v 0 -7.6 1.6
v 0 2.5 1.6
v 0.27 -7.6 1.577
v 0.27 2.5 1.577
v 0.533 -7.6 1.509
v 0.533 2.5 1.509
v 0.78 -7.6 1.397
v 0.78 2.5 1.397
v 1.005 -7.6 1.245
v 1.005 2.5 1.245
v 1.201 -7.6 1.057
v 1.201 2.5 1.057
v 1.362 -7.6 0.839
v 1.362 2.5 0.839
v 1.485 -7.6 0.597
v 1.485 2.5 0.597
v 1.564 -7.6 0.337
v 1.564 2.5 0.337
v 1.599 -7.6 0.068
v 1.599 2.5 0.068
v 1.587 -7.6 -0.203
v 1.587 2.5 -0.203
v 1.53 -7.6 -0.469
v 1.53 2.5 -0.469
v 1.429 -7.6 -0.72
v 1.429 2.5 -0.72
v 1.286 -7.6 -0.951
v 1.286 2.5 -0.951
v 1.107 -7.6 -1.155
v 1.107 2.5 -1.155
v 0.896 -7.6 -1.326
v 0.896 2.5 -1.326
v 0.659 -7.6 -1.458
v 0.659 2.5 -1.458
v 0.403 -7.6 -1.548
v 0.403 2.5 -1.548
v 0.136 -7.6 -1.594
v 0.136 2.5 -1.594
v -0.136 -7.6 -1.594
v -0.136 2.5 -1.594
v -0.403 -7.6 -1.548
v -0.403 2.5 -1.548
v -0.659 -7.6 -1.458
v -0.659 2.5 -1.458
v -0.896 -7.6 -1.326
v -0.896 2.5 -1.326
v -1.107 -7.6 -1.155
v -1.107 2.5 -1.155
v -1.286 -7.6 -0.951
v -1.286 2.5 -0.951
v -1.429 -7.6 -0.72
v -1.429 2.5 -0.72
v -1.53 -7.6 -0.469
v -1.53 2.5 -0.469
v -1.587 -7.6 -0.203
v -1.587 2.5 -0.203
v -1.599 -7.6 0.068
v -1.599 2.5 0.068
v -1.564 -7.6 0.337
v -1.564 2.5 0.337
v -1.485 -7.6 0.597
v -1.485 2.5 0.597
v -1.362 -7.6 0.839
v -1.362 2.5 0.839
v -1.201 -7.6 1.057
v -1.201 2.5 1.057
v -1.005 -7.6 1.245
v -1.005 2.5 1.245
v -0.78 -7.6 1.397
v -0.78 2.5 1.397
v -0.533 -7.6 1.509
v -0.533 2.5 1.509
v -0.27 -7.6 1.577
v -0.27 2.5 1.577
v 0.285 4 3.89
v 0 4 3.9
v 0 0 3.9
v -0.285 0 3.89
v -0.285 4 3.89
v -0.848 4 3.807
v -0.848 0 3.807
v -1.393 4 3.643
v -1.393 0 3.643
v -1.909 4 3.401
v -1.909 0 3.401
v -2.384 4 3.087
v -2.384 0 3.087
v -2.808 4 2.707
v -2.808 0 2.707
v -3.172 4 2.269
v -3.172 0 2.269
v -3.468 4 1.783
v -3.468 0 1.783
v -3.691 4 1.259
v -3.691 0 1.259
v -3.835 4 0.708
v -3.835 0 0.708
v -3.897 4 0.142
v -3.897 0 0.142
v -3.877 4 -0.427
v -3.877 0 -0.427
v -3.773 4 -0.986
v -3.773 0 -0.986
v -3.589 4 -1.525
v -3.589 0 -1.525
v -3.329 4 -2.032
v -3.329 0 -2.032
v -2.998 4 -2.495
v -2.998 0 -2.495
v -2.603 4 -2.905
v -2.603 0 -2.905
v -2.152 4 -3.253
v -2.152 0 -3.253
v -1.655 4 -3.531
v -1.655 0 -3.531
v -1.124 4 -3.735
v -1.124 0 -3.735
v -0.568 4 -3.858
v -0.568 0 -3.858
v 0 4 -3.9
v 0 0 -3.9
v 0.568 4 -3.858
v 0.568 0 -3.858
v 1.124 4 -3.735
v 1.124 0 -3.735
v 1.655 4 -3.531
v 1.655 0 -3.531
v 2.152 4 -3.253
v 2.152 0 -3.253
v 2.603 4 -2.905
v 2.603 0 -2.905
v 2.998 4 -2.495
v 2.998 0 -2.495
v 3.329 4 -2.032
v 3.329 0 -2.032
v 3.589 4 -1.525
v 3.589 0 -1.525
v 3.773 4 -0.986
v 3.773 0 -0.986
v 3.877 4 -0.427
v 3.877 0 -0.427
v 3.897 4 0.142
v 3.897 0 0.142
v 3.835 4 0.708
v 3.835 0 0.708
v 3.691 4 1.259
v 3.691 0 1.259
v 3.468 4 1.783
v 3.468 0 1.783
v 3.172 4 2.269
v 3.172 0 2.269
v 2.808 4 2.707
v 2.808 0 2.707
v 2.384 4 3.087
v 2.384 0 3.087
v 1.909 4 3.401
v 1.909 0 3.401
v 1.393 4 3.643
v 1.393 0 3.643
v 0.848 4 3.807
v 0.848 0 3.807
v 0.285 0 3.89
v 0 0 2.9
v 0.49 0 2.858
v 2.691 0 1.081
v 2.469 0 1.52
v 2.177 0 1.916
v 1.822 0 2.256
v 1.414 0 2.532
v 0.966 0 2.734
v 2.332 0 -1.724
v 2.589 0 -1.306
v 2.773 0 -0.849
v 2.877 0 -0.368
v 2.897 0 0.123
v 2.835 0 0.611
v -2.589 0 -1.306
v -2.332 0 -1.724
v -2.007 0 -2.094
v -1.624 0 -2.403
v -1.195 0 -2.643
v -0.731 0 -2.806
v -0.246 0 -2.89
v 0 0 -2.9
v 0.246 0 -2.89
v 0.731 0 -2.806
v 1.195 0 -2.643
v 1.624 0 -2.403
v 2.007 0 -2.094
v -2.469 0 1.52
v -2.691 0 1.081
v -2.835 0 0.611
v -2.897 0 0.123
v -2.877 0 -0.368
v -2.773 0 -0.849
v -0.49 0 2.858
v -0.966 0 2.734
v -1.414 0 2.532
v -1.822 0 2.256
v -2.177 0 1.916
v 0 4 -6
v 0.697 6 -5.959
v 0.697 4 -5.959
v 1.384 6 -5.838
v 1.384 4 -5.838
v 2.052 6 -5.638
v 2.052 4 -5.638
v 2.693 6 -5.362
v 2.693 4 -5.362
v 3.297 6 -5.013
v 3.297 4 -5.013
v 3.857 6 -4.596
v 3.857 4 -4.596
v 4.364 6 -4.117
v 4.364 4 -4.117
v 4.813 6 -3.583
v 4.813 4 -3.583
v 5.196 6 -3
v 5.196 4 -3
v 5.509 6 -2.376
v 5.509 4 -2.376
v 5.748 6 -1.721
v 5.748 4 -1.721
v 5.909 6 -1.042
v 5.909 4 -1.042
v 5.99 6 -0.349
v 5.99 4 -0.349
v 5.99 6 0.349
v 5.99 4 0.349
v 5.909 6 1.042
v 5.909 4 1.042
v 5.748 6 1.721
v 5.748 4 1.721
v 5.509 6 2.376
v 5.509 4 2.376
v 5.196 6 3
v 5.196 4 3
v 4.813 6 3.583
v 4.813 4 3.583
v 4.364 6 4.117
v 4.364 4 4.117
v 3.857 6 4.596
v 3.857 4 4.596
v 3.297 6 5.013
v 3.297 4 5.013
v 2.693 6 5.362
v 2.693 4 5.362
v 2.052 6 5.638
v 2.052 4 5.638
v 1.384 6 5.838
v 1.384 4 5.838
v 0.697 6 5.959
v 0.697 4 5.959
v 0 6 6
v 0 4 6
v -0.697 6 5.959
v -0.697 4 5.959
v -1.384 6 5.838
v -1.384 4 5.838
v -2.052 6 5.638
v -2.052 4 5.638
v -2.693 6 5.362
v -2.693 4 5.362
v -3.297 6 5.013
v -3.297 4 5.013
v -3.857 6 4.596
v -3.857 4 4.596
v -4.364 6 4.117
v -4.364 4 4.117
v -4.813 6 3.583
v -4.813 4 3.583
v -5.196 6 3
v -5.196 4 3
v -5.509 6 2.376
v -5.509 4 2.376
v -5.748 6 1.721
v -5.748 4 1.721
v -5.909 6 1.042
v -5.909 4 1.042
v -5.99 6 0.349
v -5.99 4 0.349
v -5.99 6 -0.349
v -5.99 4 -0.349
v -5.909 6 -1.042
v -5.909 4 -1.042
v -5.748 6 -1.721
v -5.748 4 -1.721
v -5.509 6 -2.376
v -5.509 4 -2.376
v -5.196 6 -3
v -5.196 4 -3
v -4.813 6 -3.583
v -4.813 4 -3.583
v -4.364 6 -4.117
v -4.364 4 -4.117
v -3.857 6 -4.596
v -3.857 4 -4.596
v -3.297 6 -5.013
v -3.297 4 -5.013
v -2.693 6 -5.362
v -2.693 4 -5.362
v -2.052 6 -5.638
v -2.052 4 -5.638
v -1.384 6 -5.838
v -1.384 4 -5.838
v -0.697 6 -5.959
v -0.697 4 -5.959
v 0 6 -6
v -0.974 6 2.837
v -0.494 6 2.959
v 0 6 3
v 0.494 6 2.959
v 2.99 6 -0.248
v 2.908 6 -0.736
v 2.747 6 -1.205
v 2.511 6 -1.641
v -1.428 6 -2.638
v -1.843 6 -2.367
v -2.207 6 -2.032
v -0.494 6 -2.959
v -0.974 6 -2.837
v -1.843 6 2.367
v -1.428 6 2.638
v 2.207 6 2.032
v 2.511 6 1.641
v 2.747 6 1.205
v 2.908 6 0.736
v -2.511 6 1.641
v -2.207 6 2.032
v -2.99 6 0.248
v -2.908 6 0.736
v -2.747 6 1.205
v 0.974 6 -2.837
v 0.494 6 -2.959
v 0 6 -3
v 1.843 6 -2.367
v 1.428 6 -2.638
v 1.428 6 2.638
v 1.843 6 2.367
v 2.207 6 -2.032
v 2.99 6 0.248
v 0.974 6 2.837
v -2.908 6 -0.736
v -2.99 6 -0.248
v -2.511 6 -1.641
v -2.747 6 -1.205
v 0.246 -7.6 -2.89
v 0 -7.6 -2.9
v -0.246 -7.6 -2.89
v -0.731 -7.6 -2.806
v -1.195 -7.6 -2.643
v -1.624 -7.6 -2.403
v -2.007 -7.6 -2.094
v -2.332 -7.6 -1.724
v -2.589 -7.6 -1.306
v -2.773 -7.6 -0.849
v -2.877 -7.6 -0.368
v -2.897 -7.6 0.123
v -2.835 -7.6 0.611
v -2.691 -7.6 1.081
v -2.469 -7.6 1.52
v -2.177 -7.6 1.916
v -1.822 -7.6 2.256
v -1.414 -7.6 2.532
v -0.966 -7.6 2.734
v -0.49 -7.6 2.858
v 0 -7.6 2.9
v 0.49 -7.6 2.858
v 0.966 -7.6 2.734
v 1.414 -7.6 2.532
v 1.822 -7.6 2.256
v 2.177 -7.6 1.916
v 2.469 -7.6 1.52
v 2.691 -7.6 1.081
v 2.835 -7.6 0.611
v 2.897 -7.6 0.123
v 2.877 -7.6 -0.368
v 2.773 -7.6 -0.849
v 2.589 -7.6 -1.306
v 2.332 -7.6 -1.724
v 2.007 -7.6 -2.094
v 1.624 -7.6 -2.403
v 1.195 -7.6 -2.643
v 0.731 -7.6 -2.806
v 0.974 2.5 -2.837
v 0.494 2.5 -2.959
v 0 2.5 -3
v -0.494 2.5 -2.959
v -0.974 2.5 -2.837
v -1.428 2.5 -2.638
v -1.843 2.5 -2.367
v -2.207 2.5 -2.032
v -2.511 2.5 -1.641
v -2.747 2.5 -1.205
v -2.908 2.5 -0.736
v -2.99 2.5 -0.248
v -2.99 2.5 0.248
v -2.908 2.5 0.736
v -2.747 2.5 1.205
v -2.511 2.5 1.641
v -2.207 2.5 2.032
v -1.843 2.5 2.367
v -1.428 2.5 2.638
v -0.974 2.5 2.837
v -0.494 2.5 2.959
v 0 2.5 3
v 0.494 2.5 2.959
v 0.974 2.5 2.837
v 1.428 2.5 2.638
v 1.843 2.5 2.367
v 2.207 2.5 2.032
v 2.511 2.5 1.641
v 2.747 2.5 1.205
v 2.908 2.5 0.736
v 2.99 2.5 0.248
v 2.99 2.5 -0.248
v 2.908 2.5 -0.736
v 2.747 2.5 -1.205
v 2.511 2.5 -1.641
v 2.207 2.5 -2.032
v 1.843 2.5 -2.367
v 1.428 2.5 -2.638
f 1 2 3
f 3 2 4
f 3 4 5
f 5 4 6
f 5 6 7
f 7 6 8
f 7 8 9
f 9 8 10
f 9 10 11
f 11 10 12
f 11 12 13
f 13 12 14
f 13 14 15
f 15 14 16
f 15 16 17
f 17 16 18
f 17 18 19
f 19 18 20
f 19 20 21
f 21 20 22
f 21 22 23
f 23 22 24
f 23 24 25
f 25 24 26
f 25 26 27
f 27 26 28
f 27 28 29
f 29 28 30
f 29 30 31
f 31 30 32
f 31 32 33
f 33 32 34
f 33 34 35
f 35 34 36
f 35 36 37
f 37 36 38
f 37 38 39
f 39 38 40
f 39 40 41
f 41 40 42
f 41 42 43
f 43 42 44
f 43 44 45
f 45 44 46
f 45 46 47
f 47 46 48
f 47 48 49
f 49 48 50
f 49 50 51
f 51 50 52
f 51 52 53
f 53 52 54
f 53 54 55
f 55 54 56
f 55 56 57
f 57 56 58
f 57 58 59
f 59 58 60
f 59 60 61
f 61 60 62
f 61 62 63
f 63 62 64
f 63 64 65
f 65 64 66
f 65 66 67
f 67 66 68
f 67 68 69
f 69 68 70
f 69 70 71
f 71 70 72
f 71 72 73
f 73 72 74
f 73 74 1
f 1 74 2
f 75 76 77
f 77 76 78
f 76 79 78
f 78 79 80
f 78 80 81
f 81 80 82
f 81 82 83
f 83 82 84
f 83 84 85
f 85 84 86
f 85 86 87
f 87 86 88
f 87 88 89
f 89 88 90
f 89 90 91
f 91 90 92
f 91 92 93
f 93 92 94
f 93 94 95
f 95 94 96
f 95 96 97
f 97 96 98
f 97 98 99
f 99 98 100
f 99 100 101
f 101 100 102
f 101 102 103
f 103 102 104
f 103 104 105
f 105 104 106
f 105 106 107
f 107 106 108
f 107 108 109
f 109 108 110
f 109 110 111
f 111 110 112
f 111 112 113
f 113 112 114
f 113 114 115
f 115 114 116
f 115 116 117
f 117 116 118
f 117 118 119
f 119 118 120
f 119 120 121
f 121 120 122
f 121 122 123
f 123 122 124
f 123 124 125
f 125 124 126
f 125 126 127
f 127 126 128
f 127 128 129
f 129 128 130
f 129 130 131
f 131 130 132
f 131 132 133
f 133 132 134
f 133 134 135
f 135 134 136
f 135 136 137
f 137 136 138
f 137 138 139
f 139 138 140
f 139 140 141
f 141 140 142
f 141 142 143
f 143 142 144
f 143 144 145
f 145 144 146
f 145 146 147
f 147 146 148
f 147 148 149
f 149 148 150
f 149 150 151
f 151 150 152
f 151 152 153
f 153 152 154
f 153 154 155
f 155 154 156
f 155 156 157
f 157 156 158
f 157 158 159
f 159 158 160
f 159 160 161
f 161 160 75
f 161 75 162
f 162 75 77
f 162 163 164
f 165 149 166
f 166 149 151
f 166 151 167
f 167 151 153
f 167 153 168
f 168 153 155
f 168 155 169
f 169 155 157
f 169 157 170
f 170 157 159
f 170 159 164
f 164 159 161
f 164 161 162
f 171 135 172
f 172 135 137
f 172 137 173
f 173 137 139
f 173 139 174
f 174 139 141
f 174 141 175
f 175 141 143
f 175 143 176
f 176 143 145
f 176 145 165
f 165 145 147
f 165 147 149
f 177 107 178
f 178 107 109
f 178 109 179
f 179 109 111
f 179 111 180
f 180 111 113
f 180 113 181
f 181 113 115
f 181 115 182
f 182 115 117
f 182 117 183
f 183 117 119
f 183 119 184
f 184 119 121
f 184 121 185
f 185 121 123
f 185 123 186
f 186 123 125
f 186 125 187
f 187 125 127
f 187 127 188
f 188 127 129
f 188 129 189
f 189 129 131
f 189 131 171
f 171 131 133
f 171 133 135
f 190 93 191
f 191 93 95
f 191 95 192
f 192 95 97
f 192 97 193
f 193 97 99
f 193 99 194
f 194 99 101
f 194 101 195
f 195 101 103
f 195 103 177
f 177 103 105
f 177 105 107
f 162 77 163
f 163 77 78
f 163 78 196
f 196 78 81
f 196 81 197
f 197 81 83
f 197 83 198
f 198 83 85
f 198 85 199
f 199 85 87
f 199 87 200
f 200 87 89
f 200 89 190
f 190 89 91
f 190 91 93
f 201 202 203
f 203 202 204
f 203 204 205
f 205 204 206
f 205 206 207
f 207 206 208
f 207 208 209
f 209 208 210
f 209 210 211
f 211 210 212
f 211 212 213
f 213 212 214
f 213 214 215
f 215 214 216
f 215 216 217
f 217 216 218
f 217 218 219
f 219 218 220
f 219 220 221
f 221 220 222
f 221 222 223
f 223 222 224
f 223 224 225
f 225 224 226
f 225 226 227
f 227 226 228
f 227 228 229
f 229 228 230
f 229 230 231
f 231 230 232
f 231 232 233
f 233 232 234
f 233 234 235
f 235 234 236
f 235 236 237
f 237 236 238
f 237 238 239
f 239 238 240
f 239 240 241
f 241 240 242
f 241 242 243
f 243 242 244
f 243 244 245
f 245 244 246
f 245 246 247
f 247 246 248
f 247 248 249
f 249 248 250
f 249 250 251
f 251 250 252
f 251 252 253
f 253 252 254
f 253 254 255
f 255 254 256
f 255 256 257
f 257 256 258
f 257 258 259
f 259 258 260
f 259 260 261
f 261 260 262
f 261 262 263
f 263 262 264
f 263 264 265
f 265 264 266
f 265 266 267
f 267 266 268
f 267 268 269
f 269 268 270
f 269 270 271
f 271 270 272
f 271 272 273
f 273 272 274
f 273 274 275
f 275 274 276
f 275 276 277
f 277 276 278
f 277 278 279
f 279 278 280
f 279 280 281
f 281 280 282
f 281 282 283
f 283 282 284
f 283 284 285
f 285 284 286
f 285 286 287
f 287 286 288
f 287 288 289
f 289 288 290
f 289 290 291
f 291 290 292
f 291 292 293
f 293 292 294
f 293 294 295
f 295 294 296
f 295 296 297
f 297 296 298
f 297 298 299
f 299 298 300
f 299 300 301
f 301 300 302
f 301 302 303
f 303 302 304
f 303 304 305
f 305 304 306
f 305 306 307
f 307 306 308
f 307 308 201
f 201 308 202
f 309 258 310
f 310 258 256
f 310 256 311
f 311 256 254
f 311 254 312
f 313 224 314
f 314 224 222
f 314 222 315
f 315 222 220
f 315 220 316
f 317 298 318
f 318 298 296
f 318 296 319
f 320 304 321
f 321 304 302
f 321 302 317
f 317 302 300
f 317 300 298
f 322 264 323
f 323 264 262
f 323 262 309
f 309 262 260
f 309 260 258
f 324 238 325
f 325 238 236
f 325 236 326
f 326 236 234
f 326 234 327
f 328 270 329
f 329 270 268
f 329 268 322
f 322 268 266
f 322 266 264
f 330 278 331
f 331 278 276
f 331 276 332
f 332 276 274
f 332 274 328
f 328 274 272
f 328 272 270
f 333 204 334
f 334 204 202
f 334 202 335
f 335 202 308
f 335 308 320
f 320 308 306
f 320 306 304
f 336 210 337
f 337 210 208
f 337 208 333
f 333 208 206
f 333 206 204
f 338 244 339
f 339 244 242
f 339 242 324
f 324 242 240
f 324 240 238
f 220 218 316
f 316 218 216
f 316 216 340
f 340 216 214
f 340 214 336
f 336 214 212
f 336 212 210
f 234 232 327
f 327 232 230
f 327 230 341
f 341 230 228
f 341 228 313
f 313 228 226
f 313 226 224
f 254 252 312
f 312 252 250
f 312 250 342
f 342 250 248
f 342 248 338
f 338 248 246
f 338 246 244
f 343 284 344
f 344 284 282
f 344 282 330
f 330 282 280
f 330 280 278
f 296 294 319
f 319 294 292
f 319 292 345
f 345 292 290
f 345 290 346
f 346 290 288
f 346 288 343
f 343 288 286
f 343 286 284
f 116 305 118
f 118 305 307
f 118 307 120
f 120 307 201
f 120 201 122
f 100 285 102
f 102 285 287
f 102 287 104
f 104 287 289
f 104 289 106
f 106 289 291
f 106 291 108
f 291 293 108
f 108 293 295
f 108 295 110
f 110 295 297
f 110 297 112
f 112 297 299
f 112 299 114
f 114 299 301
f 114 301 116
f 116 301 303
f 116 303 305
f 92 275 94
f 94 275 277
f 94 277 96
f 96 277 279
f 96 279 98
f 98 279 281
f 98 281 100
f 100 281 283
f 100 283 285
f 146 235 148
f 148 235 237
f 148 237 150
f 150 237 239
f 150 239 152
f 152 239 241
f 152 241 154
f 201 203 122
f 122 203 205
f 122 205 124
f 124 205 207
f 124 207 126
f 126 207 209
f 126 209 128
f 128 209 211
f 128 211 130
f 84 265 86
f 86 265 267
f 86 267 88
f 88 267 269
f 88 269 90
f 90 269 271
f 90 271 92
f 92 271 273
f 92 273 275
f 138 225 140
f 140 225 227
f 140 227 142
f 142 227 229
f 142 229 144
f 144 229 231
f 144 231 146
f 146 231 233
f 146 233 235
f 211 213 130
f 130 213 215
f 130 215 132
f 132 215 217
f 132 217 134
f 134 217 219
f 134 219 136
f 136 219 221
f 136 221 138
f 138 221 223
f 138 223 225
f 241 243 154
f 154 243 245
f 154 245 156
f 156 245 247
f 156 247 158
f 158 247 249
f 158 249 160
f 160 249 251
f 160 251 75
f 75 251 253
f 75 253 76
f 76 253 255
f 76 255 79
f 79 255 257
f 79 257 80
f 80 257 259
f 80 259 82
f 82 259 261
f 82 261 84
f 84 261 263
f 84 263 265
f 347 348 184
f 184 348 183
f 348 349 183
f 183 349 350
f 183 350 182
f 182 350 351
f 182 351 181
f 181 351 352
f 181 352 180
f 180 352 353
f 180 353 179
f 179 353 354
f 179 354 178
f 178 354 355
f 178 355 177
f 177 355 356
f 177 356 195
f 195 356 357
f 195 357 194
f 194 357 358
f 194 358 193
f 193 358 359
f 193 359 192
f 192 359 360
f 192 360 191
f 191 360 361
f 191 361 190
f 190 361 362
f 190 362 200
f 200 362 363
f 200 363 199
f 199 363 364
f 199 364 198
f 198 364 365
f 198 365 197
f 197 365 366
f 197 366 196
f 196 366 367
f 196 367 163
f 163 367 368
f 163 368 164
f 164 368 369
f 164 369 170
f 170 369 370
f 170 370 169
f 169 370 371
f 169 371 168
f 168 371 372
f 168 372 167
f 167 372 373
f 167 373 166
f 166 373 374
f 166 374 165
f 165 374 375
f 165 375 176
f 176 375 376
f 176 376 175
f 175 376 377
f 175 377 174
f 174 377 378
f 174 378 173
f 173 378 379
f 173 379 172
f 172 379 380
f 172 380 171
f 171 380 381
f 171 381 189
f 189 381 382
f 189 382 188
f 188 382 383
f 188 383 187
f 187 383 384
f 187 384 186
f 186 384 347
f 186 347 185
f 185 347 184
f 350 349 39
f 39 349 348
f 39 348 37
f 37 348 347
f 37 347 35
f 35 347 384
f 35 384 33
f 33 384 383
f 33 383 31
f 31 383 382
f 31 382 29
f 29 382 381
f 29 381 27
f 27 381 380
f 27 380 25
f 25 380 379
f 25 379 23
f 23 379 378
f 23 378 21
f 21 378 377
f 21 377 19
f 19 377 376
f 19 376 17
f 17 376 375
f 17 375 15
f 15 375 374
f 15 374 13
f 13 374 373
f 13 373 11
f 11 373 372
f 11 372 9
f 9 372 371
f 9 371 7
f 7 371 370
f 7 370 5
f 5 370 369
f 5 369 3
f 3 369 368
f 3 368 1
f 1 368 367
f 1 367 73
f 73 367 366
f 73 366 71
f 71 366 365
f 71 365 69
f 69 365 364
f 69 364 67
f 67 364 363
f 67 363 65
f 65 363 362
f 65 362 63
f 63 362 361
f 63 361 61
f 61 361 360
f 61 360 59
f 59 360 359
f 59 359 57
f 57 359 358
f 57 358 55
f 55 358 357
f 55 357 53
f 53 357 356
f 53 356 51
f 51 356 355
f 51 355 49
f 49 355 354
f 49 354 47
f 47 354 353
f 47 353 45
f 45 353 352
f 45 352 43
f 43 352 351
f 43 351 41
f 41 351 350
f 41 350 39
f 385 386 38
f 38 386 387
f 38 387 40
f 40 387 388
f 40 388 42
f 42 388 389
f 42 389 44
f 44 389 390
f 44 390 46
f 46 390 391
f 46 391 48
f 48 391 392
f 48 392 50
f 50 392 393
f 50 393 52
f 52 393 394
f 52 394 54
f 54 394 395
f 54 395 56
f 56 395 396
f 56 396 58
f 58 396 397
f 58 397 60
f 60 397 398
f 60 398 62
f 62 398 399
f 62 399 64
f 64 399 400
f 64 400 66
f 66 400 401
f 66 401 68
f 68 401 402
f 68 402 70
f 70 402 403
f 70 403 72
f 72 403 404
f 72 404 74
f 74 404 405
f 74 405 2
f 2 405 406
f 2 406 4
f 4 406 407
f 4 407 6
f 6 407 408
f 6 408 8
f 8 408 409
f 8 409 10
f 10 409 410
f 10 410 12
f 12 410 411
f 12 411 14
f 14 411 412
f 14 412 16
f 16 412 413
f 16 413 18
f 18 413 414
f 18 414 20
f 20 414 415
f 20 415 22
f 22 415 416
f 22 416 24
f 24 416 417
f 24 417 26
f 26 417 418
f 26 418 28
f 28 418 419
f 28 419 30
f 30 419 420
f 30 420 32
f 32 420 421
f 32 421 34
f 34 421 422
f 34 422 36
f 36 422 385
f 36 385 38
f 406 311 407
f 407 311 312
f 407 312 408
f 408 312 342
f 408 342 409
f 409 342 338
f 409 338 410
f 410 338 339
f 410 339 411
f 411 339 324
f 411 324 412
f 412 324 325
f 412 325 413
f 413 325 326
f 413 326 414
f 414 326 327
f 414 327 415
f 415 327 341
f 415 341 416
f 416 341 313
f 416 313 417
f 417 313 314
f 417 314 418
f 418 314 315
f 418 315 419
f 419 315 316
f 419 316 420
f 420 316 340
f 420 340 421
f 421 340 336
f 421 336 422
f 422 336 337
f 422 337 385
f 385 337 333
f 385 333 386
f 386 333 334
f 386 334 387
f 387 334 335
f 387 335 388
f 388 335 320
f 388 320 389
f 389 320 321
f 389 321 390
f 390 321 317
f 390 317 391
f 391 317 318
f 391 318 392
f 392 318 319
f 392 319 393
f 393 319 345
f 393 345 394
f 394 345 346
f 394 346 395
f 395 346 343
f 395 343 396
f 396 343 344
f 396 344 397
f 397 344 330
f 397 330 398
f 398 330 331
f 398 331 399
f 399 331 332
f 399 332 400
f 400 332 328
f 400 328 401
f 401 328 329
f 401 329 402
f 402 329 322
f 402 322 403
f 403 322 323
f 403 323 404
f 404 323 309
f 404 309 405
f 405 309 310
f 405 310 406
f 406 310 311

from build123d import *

# Parameters (mm, degrees)
SKETCH_1_R          = 3.9
EXTRUDE_1_DEPTH     = 4
SKETCH_2_R          = 6
EXTRUDE_2_DEPTH     = 2
SKETCH_6_R          = 2.9
EXTRUDE_3_DEPTH     = 7.6
SKETCH_3_R          = 1.6
CUT_EXTRUDE_1_DEPTH = 17.029971928
SKETCH_4_R          = 3
CUT_EXTRUDE_2_DEPTH = 3.5


with BuildPart() as part:
    # 草图1 → 凸台-拉伸1 (new body)
    with BuildSketch(Plane(origin=(0, 0, 0), x_dir=(1, 0, 0), z_dir=(0, 1, 0))):
        with Locations(Location((0, 0, 0), (0, 0, 270))):
            Circle(SKETCH_1_R)
    extrude(amount=EXTRUDE_1_DEPTH)

    # 草图2 → 凸台-拉伸2 (add)
    with BuildSketch(Plane(origin=(0, 4, 0), x_dir=(1, 0, 0), z_dir=(0, 1, 0))):
        with Locations(Location((0, 0, 0), (0, 0, 270))):
            Circle(SKETCH_2_R)
    extrude(amount=EXTRUDE_2_DEPTH)

    # 草图6 → 凸台-拉伸3 (add)
    with BuildSketch(Plane.XZ):
        with Locations(Location((0, 0, 0), (0, 0, 90))):
            Circle(SKETCH_6_R)
    extrude(amount=EXTRUDE_3_DEPTH)

    # 草图3 → 切除-拉伸1 (cut, through all)
    with BuildSketch(Plane(origin=(0, 6, 0), x_dir=(1, 0, 0), z_dir=(0, 1, 0))):
        with Locations(Location((0, 0, 0), (0, 0, 270))):
            Circle(SKETCH_3_R)
    extrude(amount=-CUT_EXTRUDE_1_DEPTH, mode=Mode.SUBTRACT)

    # 草图4 → 切除-拉伸2 (cut)
    with BuildSketch(Plane(origin=(0, 6, 0), x_dir=(1, 0, 0), z_dir=(0, 1, 0))):
        with Locations(Location((0, 0, 0), (0, 0, 270))):
            Circle(SKETCH_4_R)
    extrude(amount=-CUT_EXTRUDE_2_DEPTH, mode=Mode.SUBTRACT)


solid = part.part
